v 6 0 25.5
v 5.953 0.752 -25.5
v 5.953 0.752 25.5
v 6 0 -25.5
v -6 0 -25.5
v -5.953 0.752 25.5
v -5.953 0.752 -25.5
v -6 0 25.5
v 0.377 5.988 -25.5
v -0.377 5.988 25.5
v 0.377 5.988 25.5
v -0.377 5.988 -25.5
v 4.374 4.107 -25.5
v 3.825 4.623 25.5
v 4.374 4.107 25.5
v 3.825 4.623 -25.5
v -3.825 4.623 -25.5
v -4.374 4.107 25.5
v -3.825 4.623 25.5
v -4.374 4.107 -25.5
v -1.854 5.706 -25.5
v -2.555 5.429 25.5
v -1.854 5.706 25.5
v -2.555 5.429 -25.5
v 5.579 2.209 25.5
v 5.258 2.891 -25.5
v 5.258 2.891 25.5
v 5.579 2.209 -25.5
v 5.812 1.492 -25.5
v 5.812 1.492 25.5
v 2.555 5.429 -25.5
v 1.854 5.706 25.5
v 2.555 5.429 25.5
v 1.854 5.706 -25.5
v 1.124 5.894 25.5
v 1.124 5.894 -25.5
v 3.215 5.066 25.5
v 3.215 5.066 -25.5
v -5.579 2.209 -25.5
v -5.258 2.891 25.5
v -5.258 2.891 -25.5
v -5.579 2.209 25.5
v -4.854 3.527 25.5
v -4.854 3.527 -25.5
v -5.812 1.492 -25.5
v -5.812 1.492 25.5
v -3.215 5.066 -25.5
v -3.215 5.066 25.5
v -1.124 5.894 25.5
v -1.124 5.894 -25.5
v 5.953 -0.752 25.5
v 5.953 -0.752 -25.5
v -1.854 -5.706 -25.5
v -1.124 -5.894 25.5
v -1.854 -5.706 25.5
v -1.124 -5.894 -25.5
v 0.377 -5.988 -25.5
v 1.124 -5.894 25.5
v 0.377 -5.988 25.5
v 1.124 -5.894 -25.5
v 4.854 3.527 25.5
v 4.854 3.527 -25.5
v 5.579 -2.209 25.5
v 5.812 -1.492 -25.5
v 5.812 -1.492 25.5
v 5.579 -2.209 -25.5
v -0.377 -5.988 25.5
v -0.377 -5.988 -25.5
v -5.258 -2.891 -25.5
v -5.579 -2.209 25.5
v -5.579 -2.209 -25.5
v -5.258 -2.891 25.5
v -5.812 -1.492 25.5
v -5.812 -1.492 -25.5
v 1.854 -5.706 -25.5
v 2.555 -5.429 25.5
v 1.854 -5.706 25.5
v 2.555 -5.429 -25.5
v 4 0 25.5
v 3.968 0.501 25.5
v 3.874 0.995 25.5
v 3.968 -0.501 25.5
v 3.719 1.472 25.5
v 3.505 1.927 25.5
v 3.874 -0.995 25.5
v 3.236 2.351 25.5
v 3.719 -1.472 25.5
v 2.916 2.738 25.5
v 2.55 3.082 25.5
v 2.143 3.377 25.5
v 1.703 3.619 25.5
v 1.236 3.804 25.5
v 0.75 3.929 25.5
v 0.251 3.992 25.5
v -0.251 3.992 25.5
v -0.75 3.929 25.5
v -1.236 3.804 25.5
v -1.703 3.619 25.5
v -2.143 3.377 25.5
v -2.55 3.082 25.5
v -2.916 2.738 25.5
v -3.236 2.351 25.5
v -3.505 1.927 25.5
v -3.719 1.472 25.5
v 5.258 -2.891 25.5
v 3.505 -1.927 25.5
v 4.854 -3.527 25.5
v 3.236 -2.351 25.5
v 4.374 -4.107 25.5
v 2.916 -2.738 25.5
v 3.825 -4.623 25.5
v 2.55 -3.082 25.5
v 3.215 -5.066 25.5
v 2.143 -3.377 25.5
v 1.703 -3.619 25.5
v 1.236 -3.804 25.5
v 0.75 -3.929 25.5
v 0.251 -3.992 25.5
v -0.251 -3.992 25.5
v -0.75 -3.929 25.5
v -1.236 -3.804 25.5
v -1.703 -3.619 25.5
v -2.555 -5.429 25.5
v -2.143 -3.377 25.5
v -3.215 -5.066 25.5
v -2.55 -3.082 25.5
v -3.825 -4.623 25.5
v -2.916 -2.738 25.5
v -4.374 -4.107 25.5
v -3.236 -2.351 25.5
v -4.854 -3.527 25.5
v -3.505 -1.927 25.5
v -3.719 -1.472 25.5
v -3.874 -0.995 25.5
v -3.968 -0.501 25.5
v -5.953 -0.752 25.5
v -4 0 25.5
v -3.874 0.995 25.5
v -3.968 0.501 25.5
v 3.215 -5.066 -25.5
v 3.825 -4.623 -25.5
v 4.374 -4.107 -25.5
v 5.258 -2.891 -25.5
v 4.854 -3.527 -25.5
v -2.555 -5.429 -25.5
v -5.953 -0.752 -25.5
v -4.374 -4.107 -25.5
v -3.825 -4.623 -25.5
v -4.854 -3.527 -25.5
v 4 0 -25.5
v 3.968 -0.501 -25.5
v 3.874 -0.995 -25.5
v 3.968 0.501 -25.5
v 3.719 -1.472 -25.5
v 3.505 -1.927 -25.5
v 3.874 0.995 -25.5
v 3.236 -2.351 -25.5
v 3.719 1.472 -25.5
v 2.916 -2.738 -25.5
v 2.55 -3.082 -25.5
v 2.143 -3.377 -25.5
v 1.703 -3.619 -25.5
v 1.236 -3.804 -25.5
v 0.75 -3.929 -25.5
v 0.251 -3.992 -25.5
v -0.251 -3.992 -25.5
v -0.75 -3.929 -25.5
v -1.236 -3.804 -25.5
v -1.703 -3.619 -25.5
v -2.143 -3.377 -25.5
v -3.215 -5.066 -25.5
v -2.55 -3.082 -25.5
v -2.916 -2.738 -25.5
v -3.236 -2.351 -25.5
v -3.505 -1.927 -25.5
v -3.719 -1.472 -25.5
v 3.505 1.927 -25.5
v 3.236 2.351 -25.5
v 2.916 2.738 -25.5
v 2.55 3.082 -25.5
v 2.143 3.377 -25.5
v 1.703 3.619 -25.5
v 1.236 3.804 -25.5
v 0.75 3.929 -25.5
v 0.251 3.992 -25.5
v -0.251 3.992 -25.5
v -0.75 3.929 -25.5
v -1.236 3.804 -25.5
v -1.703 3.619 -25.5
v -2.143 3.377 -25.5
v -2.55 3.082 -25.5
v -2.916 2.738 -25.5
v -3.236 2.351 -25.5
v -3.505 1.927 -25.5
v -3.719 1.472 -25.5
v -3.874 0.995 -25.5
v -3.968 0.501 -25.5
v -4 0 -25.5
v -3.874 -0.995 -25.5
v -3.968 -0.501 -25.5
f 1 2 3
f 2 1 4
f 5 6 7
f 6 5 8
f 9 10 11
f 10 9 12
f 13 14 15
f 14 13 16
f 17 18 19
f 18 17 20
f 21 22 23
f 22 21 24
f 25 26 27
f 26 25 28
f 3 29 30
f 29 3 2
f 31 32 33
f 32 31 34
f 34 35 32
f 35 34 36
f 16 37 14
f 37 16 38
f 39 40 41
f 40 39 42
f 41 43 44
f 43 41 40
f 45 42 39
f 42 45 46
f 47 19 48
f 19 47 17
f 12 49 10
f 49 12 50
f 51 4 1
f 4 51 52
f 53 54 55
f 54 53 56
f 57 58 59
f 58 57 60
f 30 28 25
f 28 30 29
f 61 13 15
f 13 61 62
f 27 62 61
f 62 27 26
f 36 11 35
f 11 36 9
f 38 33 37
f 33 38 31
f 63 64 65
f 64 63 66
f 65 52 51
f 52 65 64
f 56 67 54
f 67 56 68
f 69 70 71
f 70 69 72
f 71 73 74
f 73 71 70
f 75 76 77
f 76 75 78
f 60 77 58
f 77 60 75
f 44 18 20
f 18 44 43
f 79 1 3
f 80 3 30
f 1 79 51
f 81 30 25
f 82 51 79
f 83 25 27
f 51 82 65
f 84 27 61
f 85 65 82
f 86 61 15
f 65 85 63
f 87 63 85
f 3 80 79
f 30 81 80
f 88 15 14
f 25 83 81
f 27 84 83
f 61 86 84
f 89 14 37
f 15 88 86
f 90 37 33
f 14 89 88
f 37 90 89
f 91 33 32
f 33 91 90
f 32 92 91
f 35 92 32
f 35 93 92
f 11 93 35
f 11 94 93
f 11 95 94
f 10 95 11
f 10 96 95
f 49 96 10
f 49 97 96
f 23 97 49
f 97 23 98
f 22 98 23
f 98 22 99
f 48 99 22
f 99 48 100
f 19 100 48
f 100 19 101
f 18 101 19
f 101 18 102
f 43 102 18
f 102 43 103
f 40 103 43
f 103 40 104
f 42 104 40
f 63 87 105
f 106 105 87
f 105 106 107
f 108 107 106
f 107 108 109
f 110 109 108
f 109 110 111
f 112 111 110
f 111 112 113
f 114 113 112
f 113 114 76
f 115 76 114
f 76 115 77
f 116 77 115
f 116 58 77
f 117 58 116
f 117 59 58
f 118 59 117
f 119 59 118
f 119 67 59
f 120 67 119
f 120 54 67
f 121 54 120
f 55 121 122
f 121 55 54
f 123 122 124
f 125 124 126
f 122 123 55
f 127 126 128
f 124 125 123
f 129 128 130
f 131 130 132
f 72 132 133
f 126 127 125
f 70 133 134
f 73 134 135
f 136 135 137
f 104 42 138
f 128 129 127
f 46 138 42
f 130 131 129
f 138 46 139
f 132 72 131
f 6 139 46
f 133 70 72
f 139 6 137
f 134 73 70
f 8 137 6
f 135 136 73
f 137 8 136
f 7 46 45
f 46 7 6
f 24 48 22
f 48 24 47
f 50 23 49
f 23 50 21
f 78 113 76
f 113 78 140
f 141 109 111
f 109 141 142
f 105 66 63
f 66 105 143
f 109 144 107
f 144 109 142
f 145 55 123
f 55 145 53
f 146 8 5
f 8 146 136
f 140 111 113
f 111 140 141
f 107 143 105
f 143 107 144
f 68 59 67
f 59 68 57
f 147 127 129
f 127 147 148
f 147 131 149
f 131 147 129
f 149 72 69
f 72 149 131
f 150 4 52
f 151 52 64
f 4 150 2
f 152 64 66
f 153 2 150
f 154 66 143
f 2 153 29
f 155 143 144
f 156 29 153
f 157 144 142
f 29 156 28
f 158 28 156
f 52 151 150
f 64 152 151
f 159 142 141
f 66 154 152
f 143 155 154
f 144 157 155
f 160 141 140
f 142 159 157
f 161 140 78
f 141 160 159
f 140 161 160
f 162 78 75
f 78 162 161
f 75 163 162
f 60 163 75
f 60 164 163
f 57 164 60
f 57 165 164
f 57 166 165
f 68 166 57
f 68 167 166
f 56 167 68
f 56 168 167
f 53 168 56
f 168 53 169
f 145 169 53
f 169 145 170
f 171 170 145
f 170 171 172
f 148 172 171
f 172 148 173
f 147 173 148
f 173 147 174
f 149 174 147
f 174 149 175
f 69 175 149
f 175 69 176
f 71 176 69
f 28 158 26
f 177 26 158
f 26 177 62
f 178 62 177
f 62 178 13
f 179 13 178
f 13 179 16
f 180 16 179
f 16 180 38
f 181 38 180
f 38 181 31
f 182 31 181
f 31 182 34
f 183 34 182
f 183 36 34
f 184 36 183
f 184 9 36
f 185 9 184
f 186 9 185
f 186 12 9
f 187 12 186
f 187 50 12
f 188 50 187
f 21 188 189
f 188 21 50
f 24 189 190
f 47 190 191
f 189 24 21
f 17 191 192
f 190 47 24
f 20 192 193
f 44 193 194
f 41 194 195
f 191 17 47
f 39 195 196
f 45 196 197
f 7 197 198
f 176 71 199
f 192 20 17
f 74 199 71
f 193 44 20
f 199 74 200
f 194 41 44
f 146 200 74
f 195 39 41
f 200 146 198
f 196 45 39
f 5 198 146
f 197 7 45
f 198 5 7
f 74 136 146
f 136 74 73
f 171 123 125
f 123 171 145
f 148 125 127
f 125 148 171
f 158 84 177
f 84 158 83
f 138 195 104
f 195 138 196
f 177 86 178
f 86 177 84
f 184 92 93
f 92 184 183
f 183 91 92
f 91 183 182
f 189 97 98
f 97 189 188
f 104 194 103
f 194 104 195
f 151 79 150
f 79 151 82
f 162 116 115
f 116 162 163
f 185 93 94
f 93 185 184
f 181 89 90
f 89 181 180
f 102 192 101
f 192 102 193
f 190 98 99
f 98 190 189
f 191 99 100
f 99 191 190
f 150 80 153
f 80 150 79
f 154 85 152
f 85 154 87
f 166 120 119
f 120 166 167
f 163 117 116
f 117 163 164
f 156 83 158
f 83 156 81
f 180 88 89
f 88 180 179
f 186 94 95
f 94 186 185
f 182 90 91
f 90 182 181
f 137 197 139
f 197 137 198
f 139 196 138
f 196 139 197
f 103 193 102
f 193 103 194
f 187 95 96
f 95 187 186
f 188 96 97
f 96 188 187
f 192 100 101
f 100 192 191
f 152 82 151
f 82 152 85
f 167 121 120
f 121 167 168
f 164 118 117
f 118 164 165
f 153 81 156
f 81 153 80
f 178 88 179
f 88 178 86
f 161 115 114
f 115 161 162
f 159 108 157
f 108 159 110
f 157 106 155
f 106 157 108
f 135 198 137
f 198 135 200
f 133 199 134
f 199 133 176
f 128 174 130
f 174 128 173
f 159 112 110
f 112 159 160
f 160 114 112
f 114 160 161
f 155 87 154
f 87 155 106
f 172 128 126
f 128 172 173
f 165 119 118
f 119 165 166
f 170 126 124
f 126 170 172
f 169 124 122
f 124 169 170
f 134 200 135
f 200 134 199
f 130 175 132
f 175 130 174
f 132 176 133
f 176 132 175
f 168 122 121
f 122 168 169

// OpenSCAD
$fn = 50;


difference() {
	union() {
		translate(v = [0, 0, -25.5000000000]) {
			cylinder(h = 51, r = 6.0000000000);
		}
	}
	union() {
		translate(v = [0, 0, -100.0000000000]) {
			cylinder(h = 200, r = 4.0000000000);
		}
	}
}
